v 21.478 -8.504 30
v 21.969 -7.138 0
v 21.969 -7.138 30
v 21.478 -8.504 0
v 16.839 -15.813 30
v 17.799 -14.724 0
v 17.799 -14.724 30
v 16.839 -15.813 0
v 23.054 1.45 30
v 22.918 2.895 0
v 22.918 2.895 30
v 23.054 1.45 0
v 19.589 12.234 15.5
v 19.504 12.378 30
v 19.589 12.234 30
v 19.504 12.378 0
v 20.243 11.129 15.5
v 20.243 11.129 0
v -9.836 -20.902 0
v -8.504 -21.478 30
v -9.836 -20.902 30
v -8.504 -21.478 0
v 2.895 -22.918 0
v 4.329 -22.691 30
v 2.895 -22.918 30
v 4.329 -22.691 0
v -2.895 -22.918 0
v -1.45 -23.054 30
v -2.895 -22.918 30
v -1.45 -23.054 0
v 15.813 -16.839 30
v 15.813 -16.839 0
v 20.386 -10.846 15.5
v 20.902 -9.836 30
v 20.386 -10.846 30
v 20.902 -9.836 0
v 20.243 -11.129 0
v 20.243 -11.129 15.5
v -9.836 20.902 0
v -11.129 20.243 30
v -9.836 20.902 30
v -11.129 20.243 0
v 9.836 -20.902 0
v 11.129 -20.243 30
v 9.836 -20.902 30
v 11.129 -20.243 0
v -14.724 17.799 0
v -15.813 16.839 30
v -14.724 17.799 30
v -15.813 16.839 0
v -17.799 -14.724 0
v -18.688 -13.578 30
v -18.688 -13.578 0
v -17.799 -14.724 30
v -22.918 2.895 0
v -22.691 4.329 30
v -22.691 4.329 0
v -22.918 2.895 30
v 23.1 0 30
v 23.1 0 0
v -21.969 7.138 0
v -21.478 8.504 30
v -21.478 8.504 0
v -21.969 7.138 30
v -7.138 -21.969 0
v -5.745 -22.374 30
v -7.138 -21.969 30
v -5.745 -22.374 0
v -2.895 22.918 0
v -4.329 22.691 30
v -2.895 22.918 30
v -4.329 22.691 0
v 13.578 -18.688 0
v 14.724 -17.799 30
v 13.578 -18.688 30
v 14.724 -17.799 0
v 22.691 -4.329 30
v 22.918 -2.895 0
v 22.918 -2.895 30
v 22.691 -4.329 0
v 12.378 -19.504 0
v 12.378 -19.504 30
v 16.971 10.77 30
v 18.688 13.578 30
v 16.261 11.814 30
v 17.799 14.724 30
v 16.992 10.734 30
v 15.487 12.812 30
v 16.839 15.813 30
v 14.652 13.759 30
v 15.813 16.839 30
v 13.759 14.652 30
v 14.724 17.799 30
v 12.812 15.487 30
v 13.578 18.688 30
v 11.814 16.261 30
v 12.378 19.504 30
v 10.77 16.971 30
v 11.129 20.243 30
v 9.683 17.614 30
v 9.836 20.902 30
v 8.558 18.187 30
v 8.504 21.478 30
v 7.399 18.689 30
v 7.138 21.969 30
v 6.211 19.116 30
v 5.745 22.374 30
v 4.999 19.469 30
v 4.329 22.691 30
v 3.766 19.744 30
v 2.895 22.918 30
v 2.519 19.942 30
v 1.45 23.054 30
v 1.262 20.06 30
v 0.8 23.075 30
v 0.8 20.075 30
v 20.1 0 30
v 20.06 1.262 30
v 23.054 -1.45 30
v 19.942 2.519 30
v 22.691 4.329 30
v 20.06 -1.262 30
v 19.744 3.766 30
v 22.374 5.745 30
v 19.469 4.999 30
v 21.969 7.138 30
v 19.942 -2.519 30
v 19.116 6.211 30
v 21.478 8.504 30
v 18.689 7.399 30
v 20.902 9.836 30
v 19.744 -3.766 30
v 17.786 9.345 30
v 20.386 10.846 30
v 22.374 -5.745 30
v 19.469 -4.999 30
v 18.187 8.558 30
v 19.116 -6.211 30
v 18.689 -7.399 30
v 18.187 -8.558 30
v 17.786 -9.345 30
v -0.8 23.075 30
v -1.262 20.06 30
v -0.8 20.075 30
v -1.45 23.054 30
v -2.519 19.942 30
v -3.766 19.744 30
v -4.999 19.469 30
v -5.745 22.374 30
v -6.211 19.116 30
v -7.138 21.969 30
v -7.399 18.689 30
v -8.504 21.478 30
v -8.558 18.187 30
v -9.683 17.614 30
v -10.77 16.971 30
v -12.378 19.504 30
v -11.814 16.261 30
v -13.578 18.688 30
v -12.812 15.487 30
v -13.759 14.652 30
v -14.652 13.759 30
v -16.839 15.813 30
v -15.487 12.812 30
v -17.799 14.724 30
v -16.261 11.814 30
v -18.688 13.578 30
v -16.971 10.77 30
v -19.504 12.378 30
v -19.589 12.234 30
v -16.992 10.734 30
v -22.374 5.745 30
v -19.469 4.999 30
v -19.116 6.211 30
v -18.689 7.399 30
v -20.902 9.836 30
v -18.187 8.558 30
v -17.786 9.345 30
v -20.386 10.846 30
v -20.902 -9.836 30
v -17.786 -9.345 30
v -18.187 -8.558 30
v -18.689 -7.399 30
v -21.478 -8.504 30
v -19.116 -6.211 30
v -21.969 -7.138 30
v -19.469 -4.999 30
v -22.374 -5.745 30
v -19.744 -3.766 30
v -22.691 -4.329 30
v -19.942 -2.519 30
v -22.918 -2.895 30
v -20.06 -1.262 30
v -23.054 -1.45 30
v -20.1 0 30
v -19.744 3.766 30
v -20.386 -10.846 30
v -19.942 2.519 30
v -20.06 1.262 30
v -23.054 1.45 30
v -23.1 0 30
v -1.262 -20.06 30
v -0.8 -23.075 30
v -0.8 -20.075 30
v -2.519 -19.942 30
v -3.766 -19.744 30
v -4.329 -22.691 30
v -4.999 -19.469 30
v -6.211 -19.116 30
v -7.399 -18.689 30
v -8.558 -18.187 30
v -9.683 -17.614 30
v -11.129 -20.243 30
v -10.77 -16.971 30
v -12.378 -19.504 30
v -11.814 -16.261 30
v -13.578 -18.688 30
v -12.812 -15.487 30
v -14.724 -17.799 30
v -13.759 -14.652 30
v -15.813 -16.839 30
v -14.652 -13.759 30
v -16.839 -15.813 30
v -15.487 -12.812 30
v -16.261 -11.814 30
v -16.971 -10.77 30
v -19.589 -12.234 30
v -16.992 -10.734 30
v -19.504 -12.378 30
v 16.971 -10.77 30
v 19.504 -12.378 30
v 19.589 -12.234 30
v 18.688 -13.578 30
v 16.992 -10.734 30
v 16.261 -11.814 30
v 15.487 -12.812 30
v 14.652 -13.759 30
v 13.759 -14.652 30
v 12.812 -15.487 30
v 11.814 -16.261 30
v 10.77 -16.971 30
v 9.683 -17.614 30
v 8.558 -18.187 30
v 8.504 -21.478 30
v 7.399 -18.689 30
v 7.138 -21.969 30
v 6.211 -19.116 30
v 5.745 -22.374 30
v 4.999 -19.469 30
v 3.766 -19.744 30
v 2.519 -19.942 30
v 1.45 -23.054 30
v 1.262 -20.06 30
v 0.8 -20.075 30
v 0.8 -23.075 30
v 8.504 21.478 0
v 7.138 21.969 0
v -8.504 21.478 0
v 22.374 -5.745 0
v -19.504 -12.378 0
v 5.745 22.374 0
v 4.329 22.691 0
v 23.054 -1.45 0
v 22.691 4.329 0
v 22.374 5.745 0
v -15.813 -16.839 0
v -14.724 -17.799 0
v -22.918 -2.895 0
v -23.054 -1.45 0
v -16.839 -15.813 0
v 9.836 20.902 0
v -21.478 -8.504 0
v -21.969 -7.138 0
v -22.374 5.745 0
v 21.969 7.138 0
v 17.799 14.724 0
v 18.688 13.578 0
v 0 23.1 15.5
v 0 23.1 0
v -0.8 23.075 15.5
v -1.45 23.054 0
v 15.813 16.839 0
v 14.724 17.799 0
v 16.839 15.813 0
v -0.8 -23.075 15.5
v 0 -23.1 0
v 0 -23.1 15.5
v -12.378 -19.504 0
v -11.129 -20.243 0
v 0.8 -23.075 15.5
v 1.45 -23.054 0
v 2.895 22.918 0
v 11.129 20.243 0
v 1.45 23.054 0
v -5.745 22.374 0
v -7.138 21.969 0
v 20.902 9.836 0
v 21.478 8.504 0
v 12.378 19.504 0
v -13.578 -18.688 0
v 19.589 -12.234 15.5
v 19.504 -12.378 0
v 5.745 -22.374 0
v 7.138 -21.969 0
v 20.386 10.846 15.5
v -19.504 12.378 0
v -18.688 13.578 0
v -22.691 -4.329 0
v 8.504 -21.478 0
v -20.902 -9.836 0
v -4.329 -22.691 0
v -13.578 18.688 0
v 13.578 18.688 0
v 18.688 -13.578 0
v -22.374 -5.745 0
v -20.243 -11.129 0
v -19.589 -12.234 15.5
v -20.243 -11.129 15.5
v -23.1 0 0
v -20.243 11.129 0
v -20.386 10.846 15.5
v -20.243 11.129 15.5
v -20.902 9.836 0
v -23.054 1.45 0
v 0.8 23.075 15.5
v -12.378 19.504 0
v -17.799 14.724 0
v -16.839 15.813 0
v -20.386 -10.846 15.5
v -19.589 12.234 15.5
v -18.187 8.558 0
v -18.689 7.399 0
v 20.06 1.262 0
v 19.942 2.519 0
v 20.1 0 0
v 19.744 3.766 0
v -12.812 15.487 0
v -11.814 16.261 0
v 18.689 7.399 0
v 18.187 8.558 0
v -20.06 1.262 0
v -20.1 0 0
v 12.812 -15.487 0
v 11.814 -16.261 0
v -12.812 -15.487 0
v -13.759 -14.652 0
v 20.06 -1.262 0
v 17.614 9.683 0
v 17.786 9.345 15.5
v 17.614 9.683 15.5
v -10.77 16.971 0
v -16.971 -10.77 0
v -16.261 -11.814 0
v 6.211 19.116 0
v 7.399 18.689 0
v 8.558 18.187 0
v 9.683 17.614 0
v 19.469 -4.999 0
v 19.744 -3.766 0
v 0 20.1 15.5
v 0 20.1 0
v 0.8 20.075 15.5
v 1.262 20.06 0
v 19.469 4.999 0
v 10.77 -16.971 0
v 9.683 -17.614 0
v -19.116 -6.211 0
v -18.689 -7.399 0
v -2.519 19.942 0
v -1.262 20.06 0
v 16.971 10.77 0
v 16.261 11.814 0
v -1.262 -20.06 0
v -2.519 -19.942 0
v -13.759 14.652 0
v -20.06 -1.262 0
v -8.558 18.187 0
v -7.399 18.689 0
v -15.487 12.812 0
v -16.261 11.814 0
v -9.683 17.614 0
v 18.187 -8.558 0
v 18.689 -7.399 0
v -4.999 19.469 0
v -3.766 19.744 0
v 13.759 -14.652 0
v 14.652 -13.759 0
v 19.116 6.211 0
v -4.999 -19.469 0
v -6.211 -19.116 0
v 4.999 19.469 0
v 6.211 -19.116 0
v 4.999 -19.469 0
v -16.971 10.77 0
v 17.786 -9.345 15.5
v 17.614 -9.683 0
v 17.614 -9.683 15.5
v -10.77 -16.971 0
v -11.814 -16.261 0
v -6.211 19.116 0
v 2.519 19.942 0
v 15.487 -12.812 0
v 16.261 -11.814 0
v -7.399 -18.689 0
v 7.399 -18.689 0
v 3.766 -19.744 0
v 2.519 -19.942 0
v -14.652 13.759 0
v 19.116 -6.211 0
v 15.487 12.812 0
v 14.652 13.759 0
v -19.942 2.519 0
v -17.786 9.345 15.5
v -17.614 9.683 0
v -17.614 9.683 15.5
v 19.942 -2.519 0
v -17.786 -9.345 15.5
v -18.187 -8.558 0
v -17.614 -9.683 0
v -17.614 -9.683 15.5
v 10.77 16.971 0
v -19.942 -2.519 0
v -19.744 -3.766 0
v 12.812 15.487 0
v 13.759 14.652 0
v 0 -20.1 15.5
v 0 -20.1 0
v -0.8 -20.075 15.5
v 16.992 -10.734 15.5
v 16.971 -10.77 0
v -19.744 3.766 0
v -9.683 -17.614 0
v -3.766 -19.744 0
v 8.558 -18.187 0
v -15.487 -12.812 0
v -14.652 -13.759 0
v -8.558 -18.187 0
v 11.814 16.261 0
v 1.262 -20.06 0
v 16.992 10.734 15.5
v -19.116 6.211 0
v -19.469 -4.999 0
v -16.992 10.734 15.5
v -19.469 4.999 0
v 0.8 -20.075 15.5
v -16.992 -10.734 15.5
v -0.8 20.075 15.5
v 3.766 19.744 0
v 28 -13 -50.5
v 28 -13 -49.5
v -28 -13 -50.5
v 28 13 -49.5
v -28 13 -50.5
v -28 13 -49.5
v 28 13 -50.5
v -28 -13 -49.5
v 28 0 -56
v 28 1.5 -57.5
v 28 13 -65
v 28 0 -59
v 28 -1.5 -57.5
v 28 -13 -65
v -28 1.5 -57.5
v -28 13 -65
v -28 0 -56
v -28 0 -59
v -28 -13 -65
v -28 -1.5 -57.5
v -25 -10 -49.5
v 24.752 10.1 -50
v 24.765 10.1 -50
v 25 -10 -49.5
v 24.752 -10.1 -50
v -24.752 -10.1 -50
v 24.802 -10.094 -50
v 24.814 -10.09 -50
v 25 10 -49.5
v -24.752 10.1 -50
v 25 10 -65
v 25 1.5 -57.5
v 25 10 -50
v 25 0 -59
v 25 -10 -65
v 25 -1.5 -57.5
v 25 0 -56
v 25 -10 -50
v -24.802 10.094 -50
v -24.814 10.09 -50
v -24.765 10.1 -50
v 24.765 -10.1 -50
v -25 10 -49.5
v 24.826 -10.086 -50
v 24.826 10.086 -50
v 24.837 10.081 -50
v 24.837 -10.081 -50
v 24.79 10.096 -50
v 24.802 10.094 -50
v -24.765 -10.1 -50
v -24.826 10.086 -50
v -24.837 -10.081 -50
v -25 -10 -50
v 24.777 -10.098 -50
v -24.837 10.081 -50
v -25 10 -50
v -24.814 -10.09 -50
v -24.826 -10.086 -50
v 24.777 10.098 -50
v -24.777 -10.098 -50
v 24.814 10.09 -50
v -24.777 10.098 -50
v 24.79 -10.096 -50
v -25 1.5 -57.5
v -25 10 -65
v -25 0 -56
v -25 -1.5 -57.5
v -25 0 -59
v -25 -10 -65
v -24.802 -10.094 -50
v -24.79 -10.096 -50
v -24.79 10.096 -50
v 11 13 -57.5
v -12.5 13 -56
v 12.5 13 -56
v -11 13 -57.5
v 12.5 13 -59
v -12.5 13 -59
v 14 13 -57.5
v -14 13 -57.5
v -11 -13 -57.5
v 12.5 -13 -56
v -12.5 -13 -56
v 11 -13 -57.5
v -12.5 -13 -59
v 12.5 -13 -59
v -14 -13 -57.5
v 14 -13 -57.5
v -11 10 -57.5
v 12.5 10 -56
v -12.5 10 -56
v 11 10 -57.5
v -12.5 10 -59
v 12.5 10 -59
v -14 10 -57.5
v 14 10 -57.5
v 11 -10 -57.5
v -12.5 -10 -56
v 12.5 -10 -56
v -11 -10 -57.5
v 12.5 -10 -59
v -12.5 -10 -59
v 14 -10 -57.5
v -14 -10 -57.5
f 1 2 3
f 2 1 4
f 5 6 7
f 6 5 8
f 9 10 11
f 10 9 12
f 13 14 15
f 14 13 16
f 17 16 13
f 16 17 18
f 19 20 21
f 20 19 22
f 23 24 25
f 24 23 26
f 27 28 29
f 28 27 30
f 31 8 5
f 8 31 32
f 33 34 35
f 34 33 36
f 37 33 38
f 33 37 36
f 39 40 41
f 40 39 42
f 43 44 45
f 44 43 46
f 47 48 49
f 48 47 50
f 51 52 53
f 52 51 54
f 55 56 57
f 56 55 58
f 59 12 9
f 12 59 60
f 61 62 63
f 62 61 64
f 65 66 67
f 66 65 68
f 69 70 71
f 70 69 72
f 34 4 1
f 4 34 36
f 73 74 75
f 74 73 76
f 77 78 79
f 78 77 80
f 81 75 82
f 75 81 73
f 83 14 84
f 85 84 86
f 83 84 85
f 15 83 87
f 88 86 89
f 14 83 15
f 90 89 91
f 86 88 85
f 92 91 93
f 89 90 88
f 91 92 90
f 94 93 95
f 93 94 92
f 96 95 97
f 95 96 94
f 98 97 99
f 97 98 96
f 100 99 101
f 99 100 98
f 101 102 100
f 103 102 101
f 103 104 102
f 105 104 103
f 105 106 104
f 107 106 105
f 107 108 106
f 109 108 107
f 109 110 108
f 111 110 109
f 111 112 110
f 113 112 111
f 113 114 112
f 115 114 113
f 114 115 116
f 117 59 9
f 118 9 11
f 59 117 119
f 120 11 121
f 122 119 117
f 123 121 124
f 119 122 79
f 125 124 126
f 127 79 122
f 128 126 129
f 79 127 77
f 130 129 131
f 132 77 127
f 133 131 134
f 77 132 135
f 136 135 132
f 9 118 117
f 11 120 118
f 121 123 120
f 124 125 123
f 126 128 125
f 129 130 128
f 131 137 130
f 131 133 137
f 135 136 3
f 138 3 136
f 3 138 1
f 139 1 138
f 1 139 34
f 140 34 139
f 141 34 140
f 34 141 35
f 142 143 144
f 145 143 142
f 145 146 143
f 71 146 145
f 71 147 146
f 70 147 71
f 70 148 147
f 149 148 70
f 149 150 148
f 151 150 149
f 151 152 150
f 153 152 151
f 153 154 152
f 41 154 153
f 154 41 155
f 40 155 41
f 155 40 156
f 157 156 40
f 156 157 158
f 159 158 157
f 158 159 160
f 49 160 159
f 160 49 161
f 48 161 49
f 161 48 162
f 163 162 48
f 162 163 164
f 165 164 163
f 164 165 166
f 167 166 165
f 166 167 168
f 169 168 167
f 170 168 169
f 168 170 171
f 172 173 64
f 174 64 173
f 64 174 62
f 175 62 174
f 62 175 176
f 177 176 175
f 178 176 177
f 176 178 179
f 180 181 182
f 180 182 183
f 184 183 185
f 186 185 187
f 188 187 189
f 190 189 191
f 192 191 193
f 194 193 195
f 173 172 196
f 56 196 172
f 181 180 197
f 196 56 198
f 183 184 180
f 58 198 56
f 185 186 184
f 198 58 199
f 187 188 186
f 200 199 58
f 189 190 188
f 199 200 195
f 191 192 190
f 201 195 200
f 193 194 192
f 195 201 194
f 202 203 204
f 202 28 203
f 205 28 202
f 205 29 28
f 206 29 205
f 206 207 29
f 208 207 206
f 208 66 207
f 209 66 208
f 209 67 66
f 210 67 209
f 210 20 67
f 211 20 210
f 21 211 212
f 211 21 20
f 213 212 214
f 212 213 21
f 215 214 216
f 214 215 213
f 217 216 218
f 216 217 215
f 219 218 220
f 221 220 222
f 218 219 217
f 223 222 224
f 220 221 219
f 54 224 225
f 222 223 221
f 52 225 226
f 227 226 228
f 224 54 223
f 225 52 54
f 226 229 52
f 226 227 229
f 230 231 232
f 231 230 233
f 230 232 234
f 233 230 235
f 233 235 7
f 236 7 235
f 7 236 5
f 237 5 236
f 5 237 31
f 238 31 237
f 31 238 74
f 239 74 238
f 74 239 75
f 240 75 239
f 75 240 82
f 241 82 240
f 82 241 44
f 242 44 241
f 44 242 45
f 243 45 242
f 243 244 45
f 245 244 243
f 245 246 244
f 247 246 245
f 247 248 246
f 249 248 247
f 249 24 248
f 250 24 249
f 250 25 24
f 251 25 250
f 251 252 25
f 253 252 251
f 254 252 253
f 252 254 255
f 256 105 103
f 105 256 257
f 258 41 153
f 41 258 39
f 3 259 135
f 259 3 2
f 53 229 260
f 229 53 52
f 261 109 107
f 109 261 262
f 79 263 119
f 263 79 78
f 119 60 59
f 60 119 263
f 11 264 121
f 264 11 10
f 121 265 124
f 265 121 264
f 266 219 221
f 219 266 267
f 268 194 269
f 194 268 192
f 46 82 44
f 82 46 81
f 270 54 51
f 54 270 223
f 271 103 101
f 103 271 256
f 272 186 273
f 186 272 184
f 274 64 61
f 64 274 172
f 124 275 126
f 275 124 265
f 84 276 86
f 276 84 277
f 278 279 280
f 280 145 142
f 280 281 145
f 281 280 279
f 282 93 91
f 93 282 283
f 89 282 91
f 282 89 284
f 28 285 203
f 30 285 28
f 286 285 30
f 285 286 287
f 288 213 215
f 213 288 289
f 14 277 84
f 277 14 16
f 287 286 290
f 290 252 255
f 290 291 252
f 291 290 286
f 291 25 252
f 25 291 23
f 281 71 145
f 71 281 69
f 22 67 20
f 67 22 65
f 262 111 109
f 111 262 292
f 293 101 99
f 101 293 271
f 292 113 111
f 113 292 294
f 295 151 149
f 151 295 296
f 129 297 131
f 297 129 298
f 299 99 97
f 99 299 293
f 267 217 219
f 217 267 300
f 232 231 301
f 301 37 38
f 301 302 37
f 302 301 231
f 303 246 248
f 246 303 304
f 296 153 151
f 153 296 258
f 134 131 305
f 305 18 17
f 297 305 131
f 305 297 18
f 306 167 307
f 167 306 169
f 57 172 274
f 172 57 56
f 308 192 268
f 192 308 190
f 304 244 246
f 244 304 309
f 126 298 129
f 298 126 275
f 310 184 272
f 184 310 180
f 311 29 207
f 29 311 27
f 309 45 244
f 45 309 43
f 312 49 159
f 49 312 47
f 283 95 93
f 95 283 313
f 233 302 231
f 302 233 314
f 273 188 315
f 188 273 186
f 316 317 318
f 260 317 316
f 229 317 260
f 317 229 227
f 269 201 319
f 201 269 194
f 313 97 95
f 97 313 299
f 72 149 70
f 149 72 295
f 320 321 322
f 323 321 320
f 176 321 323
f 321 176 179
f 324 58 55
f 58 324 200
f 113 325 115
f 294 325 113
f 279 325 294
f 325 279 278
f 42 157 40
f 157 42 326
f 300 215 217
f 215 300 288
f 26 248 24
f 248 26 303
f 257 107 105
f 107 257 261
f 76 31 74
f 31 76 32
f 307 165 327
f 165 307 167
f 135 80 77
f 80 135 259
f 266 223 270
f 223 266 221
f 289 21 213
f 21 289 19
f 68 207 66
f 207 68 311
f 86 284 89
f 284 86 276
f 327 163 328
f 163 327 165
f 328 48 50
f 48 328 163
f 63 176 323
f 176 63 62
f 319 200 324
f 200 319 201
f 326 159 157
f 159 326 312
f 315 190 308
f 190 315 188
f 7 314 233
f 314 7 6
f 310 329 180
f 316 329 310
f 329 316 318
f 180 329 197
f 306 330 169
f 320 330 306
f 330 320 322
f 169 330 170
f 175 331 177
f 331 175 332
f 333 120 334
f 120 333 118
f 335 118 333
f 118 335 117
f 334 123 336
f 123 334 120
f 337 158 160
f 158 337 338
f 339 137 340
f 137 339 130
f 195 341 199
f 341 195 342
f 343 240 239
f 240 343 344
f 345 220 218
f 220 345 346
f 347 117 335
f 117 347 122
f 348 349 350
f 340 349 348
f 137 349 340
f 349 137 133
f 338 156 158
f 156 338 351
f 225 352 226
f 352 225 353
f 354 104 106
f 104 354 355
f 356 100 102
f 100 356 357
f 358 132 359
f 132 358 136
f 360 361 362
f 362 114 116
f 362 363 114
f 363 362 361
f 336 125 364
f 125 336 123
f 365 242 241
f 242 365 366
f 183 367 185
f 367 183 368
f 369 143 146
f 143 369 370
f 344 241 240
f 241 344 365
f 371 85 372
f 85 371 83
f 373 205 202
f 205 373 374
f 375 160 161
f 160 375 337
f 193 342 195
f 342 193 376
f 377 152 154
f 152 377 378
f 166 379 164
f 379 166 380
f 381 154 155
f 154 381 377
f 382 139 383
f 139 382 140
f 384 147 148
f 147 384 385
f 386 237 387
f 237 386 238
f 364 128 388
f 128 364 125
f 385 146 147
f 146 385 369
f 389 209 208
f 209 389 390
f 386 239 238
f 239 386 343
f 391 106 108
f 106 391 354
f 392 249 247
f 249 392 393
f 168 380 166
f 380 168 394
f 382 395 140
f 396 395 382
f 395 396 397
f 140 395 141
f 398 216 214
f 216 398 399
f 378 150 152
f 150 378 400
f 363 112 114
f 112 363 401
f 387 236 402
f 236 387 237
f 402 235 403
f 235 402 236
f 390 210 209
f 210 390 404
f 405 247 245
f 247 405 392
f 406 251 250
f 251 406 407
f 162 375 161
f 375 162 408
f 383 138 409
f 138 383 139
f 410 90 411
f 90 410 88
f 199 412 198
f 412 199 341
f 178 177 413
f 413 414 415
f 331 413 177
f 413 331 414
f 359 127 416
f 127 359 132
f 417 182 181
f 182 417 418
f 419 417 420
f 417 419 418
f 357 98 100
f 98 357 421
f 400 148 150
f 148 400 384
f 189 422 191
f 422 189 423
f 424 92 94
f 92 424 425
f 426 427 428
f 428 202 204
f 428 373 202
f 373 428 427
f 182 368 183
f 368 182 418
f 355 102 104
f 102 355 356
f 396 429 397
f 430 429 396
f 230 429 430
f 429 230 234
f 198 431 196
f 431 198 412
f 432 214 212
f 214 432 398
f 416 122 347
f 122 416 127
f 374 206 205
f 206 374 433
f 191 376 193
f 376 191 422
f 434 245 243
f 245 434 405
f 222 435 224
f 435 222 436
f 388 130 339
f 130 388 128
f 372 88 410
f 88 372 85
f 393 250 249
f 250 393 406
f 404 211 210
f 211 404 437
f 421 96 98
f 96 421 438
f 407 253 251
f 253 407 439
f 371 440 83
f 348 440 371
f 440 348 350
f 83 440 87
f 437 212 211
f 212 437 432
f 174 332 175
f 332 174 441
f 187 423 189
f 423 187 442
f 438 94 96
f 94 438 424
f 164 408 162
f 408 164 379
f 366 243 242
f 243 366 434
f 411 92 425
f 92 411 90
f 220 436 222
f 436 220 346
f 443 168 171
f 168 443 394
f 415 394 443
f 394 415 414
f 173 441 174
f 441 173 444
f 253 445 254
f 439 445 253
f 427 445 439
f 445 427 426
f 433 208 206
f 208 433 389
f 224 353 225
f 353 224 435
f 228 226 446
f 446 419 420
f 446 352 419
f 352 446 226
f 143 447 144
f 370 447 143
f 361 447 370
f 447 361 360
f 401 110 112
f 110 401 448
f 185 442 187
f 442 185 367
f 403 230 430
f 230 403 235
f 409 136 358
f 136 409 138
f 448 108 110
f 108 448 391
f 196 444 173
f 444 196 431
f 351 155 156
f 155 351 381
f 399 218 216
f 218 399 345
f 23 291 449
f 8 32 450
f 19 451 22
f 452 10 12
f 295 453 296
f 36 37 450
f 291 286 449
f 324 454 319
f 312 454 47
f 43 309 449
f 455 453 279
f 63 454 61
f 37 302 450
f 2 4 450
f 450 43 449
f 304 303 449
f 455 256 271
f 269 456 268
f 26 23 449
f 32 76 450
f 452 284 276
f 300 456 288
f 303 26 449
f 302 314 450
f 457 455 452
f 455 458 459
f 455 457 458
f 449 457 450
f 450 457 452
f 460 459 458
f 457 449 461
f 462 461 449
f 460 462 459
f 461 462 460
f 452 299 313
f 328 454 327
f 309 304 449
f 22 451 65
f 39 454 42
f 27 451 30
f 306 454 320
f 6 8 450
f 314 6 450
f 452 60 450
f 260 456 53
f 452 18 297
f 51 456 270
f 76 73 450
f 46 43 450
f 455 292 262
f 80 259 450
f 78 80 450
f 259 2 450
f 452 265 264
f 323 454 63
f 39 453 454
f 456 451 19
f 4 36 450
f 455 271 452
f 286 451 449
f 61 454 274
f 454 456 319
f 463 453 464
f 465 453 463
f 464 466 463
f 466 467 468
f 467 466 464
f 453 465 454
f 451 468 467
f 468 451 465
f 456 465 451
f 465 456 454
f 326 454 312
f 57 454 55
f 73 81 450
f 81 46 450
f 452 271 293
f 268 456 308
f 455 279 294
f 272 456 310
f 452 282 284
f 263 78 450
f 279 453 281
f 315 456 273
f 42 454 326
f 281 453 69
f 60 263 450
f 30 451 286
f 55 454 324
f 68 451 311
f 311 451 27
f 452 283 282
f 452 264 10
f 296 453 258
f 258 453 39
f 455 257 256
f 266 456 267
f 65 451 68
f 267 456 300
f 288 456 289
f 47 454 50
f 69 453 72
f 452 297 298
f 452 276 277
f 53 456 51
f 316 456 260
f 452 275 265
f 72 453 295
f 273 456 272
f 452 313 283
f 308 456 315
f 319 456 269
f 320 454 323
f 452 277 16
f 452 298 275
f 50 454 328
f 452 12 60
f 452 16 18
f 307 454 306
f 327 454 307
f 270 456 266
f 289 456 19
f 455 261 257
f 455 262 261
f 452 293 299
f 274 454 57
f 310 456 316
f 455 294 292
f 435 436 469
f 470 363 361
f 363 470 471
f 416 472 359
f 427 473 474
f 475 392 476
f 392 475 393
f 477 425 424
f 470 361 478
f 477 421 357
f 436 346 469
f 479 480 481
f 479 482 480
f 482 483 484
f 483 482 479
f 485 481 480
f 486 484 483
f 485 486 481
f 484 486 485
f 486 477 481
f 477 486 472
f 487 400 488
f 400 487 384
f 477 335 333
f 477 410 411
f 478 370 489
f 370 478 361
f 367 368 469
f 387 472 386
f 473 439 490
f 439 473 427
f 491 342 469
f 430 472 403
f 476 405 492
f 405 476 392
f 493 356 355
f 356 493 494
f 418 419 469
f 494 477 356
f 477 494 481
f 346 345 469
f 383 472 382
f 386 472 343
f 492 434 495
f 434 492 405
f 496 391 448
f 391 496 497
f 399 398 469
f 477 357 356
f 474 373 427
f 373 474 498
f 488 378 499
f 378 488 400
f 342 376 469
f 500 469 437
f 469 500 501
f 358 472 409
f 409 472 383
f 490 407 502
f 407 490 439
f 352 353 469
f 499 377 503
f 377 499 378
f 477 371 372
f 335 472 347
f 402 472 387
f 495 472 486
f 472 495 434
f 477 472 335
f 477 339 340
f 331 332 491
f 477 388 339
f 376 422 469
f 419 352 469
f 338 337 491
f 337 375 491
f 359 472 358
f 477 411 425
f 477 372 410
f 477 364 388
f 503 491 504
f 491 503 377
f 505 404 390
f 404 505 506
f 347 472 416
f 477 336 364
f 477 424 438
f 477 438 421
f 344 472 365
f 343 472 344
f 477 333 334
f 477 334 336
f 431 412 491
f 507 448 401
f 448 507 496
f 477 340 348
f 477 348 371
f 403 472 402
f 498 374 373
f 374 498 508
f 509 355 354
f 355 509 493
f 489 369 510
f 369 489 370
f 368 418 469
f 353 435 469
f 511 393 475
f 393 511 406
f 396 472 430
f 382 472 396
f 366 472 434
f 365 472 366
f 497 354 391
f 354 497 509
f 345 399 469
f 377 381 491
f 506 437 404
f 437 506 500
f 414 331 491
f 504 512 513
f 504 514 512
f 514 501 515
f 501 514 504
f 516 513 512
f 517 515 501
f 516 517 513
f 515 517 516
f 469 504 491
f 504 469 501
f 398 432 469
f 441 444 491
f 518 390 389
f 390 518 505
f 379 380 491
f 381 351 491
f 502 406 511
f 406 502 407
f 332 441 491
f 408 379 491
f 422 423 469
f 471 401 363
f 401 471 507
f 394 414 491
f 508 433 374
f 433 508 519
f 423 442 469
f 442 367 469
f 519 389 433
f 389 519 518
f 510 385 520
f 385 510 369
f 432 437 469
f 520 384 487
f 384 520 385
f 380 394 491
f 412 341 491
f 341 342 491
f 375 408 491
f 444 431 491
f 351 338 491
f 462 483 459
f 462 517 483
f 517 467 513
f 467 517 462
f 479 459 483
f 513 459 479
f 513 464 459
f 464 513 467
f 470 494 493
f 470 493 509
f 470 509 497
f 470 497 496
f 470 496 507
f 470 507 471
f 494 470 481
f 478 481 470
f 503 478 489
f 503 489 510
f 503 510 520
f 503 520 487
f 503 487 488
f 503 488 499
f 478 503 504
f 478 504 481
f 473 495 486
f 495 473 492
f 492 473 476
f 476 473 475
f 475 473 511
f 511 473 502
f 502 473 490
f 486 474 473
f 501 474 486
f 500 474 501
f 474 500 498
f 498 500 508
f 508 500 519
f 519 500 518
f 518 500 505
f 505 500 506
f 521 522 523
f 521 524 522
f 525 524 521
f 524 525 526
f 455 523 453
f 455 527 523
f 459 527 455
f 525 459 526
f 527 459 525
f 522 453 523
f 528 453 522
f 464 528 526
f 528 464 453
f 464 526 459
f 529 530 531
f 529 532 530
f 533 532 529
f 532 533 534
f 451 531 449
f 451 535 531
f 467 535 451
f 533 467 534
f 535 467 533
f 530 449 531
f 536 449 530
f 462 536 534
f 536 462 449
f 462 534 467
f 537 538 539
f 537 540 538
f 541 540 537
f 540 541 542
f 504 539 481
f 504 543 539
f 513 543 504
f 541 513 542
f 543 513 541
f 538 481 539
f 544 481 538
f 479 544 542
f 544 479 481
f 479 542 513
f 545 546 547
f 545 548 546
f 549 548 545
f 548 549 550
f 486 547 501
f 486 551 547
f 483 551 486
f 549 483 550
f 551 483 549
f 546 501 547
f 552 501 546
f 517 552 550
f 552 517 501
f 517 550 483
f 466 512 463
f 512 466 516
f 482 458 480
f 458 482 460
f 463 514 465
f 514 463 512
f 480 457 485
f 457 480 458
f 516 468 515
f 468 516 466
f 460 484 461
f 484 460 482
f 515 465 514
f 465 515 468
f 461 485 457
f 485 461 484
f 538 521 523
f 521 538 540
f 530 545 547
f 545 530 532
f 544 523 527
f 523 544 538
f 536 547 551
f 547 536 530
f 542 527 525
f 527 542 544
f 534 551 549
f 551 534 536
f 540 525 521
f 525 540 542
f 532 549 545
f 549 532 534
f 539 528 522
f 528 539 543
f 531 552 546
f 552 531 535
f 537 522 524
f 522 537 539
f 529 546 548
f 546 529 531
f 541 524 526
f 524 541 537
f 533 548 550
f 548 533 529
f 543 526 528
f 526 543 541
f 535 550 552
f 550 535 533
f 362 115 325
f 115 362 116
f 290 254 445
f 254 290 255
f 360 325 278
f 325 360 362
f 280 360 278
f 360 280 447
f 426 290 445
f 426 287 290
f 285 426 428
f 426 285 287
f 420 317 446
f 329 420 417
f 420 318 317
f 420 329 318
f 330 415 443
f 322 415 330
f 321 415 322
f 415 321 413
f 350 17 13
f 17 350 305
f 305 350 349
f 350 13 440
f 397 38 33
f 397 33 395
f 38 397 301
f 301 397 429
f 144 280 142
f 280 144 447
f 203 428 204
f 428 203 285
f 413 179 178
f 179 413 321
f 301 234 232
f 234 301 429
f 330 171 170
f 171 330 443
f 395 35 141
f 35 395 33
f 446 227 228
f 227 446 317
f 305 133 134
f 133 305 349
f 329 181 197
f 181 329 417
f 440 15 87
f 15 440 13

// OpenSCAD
// file: noise.scad
/**
 * H высота
 * size [x,y] размер
 * T толщина
 * D диаметр отверстий
 */

module noise( H=15, size=[40, 25], T=3, D=2) {
    t=T*2;
    dX=size[0]/4;
    difference(){
        // корпус
        linear_extrude(H){
            difference(){
                square([size[0]+t,size[1]+t],true);
                square(size,true);
            }
        }
        // отверстия
        translate([0,0,H/2]){
            rotate([0,90,0]){
                cylinder(size[0]+t+1,d=3,center = true, $fn=4);
            }
        }

        translate([dX, 0, H/2]){
            rotate([90,0,0]){
                cylinder(size[1]+t+1,d=3,center = true, $fn=4);
            }
        }

        translate([-dX, 0, H/2]){
            rotate([90,0,0]){
                cylinder(size[1]+t+1,d=3,center = true, $fn=4);
            }
        }
    }
}

// noise();
// file: connector.scad
/**
 * H высота
 * size [x,y]
 * T - толшина
 * D диаметр
 * T1 толшина
 *
 */

module connector(H=50, size=[40,25], T=3, D=40){
	r=D/2;
    T1=T;
	difference(){
		hull(){
			translate([0,0,0] ) cylinder(1,r+T1, $fn=100);
			translate([0,0,H] ) cube([size[0]+T*2,size[1]+T*2,1],true);
		}
		hull(){
			translate([0,0,0] ) cylinder(1,r, $fn=100);
			translate([0,0,H] ) cube([size[0], size[1],1],true);
		}
	}
}

// connector();
// file: tube.scad
/**
 *  D диаметр
 * 	H высота
 *  T толщина стенки
 */

module tube(D=40 , H=20, T=2){
	r=D/2;
    difference(){
        cylinder(H, r=r+T, true, $fn=100);
        cylinder(H, r=r, true, $fn=100);
    }
}
// tube();
// main file
/**
S = π × r12
18*18*3.14159 = 1017,87516 // площадь канала

1017,87516/50 = 20,3575032 // сопло для стены 50мм
1017,87516/40 = 25,446879 // сопло для стены 40мм
*/
include <tube.scad>
include <connector.scad>
include <noise.scad>

module cuter(D=40.2, T=3, T1=1.6){
    cube([T1, D+6, 15], center=true);
    rotate([0, 0, 60])
        cube([T1, D+6, 15], center=true);
    rotate([0, 0, 120])
        cube([T1, D+6, 15], center=true);
}

module extruder(D=40.2, T=3, size=[50, 20]){
    T1=1.6;    
    difference(){
        tube(D, H=30, T=3);
        translate([0, 0, 23])
            cuter(D, T, T1);
    }
    rotate([0,180,0]){
        connector(D=D, T=3, size=size);
    }
    translate([0,0,-65]) noise(size=size);
}
extruder();
